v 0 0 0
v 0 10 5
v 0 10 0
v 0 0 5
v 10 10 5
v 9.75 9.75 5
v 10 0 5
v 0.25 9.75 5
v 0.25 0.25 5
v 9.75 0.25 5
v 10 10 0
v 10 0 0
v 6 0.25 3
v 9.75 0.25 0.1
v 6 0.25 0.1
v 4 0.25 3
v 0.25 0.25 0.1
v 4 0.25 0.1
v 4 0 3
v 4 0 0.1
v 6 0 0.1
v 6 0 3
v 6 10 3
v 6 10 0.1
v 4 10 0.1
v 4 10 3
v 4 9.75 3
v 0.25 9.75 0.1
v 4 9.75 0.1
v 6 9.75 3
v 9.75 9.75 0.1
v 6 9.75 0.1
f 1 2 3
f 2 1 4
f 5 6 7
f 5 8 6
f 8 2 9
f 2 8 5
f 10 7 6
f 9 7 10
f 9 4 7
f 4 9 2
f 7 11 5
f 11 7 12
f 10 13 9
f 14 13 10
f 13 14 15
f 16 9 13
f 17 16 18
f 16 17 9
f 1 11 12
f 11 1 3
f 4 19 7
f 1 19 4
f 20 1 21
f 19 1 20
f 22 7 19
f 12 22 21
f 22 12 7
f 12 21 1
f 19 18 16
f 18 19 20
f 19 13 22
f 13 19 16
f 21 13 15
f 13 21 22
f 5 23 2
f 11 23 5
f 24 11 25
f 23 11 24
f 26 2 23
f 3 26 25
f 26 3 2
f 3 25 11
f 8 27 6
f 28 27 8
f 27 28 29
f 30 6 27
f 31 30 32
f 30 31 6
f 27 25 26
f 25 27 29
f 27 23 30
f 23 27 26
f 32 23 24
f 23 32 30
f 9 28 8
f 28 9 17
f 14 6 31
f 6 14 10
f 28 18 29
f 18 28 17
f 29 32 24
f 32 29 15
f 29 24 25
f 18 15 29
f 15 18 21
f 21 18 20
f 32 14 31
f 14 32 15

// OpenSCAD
buildingX=10;
buildingY=10;
floorHeight=5;
doorWidth=2;
doorHeight=3;
wallThickness=0.25;

cube([wallThickness,buildingY,floorHeight]);

translate([buildingX-wallThickness,0,0])
cube([wallThickness,buildingY,floorHeight]);

difference(){
cube([buildingX,wallThickness,floorHeight]);

translate([buildingX/2-doorWidth/2,0,0])
cube([doorWidth,wallThickness*10,doorHeight]);
}

difference(){
translate([0,buildingY-wallThickness,0])
cube([buildingX,wallThickness,floorHeight]);

translate([buildingX/2-doorWidth/2,buildingY-wallThickness,0])
cube([doorWidth,wallThickness*10,doorHeight]);
}

cube([buildingX,buildingY,0.1]);
